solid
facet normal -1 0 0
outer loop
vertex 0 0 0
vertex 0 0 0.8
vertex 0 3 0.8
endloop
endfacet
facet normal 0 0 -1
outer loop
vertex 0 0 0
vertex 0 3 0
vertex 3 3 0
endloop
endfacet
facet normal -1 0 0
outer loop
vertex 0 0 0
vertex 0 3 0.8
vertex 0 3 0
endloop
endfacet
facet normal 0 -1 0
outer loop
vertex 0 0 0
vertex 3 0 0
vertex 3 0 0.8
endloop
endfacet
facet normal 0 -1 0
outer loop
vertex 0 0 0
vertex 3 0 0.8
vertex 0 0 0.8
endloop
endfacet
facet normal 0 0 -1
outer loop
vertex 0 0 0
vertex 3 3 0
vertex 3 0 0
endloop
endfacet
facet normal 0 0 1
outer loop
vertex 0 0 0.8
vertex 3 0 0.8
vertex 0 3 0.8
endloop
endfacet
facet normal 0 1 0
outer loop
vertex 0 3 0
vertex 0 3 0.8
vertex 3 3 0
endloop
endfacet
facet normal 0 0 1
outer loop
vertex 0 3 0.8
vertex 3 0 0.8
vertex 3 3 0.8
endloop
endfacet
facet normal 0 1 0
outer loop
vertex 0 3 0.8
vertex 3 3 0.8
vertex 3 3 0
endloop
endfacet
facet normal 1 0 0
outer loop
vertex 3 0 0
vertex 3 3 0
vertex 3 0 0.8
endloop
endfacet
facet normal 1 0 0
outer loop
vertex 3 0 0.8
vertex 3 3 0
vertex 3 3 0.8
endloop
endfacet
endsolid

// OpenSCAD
/* Warning, this is a very basic generator with a lot of approximation 
input data : [WQFN, 3PX, 3x3x0.8mm, 16, , A, C04-00303A]
generated by com.zoubworld.electronics.cad.model3d.Basic
Date : Sun Feb 15 10:50:48 CET 2026
*/

//body
color("black")
translate([0,0,0])
cube([3.0,3.0,0.8], center=false);
